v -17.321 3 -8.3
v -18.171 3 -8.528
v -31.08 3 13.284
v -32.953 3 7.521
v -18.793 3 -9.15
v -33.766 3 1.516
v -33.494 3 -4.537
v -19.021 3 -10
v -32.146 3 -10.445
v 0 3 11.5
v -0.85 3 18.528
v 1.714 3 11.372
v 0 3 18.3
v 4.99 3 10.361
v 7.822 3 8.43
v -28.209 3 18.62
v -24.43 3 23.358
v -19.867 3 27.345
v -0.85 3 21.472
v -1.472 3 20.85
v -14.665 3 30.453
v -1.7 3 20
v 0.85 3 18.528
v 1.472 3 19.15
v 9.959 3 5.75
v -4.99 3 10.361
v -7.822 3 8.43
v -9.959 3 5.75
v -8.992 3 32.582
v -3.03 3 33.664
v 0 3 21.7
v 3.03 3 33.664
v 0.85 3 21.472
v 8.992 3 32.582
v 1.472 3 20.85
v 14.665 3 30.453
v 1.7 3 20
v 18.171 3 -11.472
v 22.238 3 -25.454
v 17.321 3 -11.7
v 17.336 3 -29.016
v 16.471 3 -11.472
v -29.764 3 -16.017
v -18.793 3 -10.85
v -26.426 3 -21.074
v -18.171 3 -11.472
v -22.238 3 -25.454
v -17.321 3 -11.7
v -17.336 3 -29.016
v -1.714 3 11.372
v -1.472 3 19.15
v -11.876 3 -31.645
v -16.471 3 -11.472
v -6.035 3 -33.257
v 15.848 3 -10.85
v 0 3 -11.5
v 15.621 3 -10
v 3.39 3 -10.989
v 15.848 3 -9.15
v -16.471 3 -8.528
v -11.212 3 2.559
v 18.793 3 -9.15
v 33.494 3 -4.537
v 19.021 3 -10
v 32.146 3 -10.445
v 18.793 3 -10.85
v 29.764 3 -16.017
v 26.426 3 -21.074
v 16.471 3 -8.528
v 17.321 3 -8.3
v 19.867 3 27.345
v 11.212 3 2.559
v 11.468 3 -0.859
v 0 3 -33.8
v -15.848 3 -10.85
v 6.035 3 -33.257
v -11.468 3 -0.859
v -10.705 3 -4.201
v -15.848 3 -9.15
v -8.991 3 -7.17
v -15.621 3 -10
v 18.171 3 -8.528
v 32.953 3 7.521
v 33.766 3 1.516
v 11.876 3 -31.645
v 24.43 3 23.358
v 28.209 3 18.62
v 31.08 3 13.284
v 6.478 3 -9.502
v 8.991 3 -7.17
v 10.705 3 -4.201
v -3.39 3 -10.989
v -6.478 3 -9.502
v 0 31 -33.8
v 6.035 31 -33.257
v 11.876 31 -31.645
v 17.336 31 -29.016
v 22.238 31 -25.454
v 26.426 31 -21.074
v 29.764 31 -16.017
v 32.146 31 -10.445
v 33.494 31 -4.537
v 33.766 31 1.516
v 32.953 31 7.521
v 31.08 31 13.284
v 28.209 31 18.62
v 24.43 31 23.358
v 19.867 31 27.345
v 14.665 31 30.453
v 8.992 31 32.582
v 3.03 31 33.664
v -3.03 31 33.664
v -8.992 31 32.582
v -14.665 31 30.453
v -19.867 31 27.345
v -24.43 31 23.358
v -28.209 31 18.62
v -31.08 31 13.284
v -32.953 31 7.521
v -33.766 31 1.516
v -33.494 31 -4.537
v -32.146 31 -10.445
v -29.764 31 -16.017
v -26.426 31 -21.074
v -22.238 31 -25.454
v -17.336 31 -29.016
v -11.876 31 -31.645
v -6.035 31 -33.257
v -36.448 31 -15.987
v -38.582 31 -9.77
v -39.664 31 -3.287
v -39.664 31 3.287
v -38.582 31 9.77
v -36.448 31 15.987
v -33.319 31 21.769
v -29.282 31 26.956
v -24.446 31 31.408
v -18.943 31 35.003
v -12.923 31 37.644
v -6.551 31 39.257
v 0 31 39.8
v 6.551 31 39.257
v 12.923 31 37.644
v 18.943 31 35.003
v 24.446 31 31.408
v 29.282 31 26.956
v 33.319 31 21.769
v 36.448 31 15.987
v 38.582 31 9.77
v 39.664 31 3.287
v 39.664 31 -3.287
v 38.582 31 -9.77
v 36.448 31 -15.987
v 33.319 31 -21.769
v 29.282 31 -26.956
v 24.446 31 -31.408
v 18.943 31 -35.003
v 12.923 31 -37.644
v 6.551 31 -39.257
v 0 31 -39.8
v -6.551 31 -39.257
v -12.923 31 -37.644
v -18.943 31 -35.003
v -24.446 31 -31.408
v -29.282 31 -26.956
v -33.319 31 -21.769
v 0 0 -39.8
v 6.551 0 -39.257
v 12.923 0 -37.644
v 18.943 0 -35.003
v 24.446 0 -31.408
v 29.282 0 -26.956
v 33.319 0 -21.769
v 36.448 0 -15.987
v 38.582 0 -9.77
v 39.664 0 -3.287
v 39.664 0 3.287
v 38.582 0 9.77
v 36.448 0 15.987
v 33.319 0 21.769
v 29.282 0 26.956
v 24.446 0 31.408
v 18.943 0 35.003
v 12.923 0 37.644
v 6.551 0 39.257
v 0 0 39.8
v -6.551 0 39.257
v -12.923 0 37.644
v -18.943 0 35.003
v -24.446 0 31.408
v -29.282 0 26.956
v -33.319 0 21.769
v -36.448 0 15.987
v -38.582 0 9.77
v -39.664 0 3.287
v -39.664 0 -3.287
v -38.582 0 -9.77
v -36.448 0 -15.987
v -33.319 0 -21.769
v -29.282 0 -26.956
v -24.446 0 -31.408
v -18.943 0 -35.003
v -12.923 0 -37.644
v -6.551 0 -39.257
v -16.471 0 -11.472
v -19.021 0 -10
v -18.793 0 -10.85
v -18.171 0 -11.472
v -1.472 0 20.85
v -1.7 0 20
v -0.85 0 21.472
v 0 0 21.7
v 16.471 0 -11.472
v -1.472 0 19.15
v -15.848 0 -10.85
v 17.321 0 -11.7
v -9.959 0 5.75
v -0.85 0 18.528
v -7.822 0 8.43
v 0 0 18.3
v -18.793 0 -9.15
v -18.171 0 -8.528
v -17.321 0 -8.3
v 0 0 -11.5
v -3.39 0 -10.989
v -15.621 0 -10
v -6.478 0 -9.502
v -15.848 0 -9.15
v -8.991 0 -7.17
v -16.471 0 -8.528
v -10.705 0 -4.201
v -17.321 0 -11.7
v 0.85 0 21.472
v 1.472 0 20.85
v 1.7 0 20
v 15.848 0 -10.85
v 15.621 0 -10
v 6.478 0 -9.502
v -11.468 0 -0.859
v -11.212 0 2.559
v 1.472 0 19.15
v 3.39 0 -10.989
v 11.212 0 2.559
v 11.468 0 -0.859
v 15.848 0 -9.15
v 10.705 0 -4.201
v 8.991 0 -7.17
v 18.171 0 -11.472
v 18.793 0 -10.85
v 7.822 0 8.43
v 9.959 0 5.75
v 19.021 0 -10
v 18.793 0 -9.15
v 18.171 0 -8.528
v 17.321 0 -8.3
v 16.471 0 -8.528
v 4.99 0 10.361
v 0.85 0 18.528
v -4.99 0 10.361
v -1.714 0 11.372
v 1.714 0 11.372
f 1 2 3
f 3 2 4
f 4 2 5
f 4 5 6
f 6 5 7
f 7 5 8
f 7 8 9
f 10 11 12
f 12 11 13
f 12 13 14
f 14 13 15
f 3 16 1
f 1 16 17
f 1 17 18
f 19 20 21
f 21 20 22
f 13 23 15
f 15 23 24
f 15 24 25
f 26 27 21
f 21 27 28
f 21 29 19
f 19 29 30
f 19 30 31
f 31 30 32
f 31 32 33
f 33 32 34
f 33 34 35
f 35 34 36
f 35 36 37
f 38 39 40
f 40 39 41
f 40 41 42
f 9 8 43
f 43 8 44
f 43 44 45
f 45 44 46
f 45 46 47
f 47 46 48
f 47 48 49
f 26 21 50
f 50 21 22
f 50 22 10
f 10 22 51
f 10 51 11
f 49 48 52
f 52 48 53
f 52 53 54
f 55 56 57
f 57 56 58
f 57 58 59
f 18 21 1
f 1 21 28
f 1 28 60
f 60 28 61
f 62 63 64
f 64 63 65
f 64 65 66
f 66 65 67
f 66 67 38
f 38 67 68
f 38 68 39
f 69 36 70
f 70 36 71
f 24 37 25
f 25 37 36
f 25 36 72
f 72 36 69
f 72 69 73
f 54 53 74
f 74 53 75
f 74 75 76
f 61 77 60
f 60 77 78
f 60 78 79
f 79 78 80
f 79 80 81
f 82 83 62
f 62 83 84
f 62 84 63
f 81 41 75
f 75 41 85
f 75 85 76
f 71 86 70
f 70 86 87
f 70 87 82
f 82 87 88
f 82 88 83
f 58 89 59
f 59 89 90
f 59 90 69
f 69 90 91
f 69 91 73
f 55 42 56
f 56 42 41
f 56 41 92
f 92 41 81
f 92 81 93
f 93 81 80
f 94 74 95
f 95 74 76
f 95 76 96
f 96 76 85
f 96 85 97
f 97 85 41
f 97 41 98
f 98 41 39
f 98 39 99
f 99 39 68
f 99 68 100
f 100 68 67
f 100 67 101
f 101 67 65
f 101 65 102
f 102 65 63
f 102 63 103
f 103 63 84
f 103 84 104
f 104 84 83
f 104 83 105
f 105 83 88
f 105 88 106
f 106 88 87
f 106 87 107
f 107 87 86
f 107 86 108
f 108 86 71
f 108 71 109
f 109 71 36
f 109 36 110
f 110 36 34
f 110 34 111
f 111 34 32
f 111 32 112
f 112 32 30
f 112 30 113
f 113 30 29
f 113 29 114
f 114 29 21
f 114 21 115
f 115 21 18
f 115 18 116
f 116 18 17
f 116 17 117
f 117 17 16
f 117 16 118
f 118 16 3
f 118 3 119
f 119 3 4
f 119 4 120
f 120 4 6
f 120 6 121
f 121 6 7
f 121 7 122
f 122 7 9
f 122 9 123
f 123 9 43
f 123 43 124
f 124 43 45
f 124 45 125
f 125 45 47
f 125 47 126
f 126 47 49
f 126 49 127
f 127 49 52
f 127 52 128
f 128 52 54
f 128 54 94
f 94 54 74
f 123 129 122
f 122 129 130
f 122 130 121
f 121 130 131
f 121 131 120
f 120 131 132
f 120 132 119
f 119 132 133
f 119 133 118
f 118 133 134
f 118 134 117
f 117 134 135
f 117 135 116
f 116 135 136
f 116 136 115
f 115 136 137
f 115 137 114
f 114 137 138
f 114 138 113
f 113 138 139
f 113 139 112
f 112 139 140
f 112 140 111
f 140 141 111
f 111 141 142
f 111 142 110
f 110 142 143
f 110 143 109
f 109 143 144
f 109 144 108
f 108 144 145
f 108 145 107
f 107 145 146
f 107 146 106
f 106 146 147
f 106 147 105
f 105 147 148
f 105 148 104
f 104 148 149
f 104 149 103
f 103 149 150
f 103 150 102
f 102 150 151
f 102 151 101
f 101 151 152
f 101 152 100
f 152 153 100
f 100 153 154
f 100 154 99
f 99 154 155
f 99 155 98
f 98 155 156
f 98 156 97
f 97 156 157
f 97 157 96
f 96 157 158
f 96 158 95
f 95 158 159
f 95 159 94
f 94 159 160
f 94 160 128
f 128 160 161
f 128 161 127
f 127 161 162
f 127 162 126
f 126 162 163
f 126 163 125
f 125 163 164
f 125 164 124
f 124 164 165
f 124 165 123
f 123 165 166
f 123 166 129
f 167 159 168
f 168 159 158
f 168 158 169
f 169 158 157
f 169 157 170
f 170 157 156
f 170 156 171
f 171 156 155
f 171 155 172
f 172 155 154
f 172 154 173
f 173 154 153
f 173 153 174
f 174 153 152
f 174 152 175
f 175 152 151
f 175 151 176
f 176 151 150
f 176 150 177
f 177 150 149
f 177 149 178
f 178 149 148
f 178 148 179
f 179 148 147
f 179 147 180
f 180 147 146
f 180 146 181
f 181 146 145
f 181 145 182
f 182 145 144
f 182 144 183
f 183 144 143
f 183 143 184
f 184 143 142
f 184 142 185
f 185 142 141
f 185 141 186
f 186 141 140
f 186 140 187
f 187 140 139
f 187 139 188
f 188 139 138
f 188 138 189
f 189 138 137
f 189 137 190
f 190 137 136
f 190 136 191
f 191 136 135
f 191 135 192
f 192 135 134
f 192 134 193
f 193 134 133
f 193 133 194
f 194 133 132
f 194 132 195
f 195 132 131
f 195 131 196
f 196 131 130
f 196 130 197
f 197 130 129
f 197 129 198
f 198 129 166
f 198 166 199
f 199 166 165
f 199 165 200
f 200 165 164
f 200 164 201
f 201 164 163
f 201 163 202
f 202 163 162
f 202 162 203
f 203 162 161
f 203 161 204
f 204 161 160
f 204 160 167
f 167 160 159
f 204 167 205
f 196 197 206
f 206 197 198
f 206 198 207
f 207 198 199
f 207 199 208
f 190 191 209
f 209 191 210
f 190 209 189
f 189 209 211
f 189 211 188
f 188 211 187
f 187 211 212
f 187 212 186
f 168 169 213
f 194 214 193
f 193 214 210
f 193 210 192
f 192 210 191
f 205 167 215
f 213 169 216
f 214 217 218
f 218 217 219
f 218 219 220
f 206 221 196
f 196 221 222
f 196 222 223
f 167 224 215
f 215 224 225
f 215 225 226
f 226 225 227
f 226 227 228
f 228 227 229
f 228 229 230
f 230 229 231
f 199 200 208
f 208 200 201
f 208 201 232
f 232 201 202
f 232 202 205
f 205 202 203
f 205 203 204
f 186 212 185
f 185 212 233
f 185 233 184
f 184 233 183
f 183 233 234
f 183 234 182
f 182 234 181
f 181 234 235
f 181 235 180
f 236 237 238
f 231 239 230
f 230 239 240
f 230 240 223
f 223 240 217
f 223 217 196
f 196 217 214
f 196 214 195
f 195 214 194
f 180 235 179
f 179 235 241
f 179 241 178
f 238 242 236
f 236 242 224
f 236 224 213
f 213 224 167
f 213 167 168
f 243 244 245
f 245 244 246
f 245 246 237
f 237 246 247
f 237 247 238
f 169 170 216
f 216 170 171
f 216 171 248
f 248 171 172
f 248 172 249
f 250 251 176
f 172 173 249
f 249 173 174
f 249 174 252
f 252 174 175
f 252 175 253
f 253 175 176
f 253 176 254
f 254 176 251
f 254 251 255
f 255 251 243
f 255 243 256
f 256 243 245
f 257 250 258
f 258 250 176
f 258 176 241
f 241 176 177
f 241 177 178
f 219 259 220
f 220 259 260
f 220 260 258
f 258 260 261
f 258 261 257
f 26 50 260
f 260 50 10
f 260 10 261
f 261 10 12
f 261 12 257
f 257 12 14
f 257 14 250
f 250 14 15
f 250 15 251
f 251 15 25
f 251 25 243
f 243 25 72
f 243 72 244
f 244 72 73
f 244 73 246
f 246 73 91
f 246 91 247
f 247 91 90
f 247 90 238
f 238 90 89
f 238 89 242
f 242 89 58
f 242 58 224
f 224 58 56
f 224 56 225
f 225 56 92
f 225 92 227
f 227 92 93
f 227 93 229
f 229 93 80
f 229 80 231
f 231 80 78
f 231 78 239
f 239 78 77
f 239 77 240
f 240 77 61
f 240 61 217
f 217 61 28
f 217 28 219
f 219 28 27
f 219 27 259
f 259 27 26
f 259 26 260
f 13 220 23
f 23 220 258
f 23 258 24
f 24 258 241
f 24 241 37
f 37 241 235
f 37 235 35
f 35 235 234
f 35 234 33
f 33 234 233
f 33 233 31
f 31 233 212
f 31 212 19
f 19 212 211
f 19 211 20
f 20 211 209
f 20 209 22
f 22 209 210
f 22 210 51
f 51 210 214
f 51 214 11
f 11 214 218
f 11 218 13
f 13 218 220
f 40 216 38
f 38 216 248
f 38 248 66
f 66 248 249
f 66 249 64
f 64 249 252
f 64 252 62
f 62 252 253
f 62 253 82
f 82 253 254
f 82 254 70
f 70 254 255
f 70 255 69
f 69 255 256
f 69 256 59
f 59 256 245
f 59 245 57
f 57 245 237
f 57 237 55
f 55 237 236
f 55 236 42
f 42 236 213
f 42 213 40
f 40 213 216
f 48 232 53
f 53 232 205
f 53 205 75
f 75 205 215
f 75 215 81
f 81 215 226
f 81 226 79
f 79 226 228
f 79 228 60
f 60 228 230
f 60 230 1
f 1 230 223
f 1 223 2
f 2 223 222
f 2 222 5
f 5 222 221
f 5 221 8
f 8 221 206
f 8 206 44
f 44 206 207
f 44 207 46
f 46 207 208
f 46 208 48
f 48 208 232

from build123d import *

# Parameters (mm, degrees)
SKETCH_2_R          = 11.5
SKETCH_2_R_2        = 1.7
CUT_EXTRUDE_1_DEPTH = 65.2579178


with BuildPart() as part:
    # 草图1 → 旋转1 (revolve)
    with BuildSketch(Plane.XY, mode=Mode.PRIVATE) as revolve_1_sk:
        Polygon((39.8, 31), (39.8, 0), (0, 0), (0, 3), (33.8, 3), (33.8, 31), align=None)
    revolve(revolve_1_sk.sketch.rotate(Axis((0, 0, 0), (0, 1, 0)), 90), axis=Axis((0, 0, 0), (0, 1, 0)))

    # 草图2 → 切除-拉伸1 (cut, through all)
    with BuildSketch(Plane.XZ):
        with Locations(Location((0, 0, 0), (0, 0, 270))):
            Circle(SKETCH_2_R)
        with Locations(Location((0, 20, 0), (0, 0, 270))):
            Circle(SKETCH_2_R_2)
        with Locations(Location((17.320508076, -10, 0), (0, 0, 270))):
            Circle(SKETCH_2_R_2)
        with Locations(Location((-17.320508076, -10, 0), (0, 0, 270))):
            Circle(SKETCH_2_R_2)
    extrude(amount=-CUT_EXTRUDE_1_DEPTH, mode=Mode.SUBTRACT)


solid = part.part
